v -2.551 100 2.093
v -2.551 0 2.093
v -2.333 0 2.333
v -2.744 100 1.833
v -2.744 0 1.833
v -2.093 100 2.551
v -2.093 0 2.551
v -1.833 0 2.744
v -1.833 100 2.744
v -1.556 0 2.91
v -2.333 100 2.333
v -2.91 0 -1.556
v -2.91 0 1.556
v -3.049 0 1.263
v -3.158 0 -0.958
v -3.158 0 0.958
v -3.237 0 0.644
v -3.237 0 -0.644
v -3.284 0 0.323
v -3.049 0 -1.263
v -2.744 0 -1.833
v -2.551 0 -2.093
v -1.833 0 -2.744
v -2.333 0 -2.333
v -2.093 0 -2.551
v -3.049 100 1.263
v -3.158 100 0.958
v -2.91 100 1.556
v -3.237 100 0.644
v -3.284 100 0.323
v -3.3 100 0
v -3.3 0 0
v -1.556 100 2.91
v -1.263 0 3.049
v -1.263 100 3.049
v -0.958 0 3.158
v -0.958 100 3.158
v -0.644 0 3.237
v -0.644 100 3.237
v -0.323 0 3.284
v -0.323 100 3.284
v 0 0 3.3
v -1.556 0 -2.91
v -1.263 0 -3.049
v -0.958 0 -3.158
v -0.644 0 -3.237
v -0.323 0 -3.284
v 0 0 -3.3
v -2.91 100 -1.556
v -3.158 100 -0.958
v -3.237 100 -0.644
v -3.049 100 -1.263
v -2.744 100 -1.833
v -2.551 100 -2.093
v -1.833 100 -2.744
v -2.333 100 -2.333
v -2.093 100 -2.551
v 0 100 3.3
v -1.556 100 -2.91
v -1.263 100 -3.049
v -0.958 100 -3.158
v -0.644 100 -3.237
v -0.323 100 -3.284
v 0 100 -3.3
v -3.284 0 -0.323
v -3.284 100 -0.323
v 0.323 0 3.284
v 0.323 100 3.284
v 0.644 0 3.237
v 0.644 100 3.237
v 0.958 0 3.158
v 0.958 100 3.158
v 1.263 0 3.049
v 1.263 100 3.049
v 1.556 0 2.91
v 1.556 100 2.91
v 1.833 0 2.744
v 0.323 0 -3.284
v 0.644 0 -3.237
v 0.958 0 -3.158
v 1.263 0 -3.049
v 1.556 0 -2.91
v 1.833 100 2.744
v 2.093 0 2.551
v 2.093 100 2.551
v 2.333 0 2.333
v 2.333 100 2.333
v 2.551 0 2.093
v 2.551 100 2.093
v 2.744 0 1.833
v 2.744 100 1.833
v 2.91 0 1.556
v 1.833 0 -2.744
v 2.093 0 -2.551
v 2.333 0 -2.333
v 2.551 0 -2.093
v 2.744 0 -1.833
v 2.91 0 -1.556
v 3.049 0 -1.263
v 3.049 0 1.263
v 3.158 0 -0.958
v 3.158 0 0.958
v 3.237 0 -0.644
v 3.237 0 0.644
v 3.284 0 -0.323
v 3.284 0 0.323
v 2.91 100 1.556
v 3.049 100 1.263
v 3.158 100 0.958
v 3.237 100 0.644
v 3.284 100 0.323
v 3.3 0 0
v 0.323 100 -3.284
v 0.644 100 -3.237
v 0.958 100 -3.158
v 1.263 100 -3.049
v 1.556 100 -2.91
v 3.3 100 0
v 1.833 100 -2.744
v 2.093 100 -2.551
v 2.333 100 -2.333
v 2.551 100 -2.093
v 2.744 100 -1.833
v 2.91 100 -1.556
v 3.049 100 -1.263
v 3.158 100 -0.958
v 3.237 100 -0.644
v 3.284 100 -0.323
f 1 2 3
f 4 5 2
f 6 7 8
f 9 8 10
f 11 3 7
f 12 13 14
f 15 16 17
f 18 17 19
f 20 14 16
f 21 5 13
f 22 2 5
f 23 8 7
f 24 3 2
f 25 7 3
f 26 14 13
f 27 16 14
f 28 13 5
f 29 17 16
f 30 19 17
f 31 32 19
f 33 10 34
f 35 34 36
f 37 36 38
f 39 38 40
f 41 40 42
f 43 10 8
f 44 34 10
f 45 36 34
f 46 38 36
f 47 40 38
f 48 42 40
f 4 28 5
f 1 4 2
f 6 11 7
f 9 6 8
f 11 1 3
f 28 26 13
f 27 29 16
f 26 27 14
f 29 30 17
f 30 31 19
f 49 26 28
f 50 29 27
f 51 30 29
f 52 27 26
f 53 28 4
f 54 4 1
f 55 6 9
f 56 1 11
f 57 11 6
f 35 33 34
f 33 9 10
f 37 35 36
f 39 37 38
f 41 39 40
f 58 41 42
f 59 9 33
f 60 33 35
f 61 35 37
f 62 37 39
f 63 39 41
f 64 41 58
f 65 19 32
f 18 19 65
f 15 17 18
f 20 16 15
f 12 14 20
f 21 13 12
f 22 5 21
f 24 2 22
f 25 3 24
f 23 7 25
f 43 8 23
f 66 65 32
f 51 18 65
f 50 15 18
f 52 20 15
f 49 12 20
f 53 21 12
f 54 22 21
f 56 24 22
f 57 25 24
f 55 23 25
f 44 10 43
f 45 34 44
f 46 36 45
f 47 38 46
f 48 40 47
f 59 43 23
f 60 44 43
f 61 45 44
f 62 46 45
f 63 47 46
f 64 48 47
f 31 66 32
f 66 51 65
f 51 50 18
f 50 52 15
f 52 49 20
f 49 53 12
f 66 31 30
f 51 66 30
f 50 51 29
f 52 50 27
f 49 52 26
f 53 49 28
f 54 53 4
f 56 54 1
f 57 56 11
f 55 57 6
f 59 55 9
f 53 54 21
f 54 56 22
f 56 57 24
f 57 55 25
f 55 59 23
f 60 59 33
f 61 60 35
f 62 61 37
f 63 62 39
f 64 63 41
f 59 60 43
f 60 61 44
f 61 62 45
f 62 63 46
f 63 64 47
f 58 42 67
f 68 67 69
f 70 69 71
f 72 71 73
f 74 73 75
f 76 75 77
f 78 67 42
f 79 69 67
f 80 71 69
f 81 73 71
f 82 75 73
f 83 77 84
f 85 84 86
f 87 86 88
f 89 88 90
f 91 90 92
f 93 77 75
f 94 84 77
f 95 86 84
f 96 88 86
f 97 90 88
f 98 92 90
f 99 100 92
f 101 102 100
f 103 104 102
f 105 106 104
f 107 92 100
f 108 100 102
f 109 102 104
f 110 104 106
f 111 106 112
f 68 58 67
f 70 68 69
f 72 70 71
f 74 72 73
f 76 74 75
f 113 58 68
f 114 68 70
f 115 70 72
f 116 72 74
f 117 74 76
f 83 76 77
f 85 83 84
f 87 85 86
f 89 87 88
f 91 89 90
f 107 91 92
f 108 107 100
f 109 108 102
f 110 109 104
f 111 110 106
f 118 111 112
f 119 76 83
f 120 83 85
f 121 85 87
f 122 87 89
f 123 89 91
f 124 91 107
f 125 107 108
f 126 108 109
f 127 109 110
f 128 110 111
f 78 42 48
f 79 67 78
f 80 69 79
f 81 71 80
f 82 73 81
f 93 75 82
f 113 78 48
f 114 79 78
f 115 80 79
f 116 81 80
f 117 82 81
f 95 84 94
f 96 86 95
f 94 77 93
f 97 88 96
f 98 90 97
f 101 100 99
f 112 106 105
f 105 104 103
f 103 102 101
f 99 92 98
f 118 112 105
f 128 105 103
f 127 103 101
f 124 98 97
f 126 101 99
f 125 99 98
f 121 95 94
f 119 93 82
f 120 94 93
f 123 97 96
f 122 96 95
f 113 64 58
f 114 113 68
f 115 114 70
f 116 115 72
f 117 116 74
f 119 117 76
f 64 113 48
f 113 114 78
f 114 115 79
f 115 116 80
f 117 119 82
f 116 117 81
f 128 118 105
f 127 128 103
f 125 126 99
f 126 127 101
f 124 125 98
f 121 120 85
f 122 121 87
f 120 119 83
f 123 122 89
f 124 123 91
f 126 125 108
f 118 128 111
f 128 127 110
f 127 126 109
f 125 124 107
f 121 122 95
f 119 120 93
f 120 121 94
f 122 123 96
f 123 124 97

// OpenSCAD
// TDPB M6 drill cleaner
// Geometry follows the holder clearance profile. Its dimensions describe the pocket used in the source design. Physical tool dimensions and fit have yet to be measured.
// Units: mm
$fn = 64;
union() {
    translate([0, 0, 0]) rotate([-90, 0, 0])
        cylinder(h=100, r1=3.3, r2=3.3, $fn=64);
}
